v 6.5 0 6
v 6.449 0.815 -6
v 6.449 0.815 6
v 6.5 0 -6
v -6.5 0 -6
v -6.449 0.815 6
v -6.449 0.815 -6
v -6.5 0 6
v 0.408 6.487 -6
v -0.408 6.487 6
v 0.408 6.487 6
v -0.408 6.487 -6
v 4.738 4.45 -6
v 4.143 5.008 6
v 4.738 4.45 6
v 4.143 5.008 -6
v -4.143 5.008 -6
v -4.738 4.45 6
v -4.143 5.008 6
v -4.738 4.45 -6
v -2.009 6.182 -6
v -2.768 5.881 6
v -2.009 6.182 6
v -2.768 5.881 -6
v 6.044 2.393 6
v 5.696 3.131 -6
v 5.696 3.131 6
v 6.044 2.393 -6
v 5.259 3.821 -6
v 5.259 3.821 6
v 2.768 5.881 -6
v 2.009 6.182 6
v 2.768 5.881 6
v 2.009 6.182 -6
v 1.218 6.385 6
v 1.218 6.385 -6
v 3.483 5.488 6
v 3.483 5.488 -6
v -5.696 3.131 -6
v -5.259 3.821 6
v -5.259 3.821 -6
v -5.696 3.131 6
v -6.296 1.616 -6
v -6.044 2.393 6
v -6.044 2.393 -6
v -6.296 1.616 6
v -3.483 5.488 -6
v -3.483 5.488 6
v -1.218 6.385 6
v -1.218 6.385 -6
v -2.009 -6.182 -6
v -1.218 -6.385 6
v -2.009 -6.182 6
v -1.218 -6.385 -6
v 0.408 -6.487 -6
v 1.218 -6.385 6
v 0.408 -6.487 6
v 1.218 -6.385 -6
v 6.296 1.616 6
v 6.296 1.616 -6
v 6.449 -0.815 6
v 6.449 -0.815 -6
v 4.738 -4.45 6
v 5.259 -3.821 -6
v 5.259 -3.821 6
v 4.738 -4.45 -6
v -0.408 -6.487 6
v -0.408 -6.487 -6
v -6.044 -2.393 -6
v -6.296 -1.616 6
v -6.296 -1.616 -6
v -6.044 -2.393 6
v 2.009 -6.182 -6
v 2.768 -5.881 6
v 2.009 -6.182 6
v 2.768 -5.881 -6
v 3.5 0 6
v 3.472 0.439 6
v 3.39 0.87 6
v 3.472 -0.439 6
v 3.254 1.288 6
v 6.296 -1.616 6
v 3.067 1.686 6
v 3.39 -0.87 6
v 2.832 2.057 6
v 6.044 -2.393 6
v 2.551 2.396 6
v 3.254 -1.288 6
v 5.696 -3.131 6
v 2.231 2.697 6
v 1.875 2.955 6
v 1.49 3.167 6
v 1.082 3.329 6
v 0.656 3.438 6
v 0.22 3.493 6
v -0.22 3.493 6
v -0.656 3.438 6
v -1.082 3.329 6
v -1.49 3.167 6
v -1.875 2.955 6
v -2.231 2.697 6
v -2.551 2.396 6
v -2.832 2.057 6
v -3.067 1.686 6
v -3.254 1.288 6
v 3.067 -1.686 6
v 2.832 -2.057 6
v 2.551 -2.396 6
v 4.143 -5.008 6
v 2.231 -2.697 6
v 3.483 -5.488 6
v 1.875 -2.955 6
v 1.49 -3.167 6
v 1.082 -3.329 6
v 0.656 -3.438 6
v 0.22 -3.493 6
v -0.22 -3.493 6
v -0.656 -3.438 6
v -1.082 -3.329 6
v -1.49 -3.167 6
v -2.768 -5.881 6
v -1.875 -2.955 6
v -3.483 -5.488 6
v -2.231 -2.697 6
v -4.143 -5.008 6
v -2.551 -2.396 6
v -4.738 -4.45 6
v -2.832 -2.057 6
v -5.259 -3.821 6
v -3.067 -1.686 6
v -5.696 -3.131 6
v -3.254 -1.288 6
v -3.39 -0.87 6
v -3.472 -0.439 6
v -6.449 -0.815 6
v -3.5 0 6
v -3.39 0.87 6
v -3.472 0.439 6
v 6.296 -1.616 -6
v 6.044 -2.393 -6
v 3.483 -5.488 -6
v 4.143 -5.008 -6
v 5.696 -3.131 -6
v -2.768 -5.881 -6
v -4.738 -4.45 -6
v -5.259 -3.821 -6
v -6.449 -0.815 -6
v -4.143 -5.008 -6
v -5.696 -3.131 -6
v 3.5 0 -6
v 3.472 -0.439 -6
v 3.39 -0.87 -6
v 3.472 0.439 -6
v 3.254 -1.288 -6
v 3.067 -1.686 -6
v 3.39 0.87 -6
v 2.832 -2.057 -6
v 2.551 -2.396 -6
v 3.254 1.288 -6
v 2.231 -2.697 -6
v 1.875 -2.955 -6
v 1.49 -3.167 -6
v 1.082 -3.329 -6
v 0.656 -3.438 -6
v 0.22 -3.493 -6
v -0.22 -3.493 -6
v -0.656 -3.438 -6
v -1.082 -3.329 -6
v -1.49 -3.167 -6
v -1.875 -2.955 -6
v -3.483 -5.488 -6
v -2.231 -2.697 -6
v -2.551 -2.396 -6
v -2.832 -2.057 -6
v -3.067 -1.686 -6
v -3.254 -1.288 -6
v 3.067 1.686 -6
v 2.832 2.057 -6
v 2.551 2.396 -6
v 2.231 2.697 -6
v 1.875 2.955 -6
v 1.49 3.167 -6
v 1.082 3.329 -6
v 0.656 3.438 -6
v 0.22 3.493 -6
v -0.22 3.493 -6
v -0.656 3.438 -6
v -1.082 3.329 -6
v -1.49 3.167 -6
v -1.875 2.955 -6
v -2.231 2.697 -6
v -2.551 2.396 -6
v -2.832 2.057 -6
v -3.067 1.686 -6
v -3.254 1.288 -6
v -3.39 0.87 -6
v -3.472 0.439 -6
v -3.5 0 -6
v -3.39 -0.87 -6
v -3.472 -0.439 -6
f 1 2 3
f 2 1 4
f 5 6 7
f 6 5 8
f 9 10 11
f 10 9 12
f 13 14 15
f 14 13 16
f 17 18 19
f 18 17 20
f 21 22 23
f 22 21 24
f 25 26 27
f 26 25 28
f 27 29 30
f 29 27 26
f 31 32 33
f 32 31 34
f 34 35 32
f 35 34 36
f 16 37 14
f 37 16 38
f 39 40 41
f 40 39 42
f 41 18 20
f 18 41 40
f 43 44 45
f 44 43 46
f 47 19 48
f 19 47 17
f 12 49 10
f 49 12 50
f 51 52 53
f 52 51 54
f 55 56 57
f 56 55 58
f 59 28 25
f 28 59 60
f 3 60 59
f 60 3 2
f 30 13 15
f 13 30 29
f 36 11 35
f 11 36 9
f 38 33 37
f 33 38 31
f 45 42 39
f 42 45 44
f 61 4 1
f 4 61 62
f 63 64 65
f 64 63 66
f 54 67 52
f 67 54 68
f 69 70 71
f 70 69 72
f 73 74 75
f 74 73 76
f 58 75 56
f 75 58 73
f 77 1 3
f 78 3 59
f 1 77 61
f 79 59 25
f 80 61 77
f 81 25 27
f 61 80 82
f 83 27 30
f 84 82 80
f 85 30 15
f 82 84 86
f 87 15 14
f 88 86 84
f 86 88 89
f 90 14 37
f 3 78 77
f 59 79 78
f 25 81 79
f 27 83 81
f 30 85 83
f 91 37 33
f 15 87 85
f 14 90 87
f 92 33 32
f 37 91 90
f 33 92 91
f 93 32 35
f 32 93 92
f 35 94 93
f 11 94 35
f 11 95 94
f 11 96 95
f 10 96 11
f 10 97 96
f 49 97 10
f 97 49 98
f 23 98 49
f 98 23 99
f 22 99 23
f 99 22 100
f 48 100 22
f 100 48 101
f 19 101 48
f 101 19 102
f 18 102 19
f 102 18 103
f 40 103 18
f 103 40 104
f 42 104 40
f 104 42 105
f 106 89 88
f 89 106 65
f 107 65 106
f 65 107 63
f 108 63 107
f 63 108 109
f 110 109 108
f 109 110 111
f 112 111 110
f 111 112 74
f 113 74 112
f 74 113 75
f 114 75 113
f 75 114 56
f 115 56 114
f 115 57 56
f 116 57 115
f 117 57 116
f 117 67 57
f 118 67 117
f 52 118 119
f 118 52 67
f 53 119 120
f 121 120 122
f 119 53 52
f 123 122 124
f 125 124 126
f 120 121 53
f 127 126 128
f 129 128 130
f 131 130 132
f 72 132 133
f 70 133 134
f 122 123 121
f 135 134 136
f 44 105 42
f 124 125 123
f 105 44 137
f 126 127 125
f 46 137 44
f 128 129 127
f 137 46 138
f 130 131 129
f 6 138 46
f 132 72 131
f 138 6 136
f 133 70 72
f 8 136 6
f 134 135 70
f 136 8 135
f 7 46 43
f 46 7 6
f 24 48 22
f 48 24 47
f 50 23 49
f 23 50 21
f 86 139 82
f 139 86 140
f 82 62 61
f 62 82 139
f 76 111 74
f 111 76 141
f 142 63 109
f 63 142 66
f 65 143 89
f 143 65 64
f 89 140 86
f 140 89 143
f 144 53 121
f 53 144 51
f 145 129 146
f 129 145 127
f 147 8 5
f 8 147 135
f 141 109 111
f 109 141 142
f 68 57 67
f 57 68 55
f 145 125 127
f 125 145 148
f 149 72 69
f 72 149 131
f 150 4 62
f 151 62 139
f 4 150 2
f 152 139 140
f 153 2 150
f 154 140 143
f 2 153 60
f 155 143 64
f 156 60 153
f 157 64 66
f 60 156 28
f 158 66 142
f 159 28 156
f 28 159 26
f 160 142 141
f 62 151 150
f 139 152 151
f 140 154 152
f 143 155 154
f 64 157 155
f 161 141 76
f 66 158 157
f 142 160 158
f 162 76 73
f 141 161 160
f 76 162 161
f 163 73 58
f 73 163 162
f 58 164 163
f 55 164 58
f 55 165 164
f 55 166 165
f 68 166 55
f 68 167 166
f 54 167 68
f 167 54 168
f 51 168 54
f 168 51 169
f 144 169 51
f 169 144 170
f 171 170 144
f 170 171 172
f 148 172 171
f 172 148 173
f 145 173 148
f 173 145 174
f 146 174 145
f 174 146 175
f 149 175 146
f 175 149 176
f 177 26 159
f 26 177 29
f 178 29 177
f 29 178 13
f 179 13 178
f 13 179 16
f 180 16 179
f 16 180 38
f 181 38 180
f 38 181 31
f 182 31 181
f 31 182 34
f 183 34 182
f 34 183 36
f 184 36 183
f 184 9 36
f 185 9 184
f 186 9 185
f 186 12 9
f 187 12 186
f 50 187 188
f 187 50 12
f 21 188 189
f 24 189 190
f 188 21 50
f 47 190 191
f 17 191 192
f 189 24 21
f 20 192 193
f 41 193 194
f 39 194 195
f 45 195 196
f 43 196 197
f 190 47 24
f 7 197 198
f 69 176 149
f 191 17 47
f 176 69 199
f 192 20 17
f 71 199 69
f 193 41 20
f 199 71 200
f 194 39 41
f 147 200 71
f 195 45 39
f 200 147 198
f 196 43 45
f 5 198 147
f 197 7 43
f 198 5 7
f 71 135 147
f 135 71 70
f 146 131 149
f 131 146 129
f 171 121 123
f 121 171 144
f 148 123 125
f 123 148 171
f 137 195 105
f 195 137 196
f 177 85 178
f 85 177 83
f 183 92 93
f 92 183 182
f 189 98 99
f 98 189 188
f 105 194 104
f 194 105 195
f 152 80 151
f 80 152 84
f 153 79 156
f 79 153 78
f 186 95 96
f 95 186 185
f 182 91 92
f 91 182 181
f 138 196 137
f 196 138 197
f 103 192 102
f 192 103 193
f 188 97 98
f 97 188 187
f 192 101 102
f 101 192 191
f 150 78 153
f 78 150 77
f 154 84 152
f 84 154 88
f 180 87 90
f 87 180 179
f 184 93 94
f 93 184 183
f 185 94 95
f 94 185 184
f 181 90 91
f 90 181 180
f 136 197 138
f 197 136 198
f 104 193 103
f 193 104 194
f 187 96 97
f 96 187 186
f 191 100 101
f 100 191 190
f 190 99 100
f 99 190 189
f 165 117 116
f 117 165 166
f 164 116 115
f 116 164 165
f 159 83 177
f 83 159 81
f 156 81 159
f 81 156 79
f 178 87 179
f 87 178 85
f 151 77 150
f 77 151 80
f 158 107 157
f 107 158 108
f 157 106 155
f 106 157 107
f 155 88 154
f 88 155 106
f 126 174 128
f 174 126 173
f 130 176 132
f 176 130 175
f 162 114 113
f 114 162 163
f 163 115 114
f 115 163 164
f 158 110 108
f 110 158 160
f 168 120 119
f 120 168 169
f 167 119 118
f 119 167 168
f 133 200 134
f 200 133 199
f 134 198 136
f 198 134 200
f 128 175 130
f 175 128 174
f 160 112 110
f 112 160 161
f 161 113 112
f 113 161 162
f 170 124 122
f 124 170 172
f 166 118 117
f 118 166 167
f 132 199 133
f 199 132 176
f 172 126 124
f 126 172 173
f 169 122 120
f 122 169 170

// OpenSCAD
$fn = 50;


difference() {
	union() {
		translate(v = [0, 0, -6.0000000000]) {
			cylinder(h = 12, r = 6.5000000000);
		}
	}
	union() {
		translate(v = [0, 0, -100.0000000000]) {
			cylinder(h = 200, r = 3.5000000000);
		}
	}
}
